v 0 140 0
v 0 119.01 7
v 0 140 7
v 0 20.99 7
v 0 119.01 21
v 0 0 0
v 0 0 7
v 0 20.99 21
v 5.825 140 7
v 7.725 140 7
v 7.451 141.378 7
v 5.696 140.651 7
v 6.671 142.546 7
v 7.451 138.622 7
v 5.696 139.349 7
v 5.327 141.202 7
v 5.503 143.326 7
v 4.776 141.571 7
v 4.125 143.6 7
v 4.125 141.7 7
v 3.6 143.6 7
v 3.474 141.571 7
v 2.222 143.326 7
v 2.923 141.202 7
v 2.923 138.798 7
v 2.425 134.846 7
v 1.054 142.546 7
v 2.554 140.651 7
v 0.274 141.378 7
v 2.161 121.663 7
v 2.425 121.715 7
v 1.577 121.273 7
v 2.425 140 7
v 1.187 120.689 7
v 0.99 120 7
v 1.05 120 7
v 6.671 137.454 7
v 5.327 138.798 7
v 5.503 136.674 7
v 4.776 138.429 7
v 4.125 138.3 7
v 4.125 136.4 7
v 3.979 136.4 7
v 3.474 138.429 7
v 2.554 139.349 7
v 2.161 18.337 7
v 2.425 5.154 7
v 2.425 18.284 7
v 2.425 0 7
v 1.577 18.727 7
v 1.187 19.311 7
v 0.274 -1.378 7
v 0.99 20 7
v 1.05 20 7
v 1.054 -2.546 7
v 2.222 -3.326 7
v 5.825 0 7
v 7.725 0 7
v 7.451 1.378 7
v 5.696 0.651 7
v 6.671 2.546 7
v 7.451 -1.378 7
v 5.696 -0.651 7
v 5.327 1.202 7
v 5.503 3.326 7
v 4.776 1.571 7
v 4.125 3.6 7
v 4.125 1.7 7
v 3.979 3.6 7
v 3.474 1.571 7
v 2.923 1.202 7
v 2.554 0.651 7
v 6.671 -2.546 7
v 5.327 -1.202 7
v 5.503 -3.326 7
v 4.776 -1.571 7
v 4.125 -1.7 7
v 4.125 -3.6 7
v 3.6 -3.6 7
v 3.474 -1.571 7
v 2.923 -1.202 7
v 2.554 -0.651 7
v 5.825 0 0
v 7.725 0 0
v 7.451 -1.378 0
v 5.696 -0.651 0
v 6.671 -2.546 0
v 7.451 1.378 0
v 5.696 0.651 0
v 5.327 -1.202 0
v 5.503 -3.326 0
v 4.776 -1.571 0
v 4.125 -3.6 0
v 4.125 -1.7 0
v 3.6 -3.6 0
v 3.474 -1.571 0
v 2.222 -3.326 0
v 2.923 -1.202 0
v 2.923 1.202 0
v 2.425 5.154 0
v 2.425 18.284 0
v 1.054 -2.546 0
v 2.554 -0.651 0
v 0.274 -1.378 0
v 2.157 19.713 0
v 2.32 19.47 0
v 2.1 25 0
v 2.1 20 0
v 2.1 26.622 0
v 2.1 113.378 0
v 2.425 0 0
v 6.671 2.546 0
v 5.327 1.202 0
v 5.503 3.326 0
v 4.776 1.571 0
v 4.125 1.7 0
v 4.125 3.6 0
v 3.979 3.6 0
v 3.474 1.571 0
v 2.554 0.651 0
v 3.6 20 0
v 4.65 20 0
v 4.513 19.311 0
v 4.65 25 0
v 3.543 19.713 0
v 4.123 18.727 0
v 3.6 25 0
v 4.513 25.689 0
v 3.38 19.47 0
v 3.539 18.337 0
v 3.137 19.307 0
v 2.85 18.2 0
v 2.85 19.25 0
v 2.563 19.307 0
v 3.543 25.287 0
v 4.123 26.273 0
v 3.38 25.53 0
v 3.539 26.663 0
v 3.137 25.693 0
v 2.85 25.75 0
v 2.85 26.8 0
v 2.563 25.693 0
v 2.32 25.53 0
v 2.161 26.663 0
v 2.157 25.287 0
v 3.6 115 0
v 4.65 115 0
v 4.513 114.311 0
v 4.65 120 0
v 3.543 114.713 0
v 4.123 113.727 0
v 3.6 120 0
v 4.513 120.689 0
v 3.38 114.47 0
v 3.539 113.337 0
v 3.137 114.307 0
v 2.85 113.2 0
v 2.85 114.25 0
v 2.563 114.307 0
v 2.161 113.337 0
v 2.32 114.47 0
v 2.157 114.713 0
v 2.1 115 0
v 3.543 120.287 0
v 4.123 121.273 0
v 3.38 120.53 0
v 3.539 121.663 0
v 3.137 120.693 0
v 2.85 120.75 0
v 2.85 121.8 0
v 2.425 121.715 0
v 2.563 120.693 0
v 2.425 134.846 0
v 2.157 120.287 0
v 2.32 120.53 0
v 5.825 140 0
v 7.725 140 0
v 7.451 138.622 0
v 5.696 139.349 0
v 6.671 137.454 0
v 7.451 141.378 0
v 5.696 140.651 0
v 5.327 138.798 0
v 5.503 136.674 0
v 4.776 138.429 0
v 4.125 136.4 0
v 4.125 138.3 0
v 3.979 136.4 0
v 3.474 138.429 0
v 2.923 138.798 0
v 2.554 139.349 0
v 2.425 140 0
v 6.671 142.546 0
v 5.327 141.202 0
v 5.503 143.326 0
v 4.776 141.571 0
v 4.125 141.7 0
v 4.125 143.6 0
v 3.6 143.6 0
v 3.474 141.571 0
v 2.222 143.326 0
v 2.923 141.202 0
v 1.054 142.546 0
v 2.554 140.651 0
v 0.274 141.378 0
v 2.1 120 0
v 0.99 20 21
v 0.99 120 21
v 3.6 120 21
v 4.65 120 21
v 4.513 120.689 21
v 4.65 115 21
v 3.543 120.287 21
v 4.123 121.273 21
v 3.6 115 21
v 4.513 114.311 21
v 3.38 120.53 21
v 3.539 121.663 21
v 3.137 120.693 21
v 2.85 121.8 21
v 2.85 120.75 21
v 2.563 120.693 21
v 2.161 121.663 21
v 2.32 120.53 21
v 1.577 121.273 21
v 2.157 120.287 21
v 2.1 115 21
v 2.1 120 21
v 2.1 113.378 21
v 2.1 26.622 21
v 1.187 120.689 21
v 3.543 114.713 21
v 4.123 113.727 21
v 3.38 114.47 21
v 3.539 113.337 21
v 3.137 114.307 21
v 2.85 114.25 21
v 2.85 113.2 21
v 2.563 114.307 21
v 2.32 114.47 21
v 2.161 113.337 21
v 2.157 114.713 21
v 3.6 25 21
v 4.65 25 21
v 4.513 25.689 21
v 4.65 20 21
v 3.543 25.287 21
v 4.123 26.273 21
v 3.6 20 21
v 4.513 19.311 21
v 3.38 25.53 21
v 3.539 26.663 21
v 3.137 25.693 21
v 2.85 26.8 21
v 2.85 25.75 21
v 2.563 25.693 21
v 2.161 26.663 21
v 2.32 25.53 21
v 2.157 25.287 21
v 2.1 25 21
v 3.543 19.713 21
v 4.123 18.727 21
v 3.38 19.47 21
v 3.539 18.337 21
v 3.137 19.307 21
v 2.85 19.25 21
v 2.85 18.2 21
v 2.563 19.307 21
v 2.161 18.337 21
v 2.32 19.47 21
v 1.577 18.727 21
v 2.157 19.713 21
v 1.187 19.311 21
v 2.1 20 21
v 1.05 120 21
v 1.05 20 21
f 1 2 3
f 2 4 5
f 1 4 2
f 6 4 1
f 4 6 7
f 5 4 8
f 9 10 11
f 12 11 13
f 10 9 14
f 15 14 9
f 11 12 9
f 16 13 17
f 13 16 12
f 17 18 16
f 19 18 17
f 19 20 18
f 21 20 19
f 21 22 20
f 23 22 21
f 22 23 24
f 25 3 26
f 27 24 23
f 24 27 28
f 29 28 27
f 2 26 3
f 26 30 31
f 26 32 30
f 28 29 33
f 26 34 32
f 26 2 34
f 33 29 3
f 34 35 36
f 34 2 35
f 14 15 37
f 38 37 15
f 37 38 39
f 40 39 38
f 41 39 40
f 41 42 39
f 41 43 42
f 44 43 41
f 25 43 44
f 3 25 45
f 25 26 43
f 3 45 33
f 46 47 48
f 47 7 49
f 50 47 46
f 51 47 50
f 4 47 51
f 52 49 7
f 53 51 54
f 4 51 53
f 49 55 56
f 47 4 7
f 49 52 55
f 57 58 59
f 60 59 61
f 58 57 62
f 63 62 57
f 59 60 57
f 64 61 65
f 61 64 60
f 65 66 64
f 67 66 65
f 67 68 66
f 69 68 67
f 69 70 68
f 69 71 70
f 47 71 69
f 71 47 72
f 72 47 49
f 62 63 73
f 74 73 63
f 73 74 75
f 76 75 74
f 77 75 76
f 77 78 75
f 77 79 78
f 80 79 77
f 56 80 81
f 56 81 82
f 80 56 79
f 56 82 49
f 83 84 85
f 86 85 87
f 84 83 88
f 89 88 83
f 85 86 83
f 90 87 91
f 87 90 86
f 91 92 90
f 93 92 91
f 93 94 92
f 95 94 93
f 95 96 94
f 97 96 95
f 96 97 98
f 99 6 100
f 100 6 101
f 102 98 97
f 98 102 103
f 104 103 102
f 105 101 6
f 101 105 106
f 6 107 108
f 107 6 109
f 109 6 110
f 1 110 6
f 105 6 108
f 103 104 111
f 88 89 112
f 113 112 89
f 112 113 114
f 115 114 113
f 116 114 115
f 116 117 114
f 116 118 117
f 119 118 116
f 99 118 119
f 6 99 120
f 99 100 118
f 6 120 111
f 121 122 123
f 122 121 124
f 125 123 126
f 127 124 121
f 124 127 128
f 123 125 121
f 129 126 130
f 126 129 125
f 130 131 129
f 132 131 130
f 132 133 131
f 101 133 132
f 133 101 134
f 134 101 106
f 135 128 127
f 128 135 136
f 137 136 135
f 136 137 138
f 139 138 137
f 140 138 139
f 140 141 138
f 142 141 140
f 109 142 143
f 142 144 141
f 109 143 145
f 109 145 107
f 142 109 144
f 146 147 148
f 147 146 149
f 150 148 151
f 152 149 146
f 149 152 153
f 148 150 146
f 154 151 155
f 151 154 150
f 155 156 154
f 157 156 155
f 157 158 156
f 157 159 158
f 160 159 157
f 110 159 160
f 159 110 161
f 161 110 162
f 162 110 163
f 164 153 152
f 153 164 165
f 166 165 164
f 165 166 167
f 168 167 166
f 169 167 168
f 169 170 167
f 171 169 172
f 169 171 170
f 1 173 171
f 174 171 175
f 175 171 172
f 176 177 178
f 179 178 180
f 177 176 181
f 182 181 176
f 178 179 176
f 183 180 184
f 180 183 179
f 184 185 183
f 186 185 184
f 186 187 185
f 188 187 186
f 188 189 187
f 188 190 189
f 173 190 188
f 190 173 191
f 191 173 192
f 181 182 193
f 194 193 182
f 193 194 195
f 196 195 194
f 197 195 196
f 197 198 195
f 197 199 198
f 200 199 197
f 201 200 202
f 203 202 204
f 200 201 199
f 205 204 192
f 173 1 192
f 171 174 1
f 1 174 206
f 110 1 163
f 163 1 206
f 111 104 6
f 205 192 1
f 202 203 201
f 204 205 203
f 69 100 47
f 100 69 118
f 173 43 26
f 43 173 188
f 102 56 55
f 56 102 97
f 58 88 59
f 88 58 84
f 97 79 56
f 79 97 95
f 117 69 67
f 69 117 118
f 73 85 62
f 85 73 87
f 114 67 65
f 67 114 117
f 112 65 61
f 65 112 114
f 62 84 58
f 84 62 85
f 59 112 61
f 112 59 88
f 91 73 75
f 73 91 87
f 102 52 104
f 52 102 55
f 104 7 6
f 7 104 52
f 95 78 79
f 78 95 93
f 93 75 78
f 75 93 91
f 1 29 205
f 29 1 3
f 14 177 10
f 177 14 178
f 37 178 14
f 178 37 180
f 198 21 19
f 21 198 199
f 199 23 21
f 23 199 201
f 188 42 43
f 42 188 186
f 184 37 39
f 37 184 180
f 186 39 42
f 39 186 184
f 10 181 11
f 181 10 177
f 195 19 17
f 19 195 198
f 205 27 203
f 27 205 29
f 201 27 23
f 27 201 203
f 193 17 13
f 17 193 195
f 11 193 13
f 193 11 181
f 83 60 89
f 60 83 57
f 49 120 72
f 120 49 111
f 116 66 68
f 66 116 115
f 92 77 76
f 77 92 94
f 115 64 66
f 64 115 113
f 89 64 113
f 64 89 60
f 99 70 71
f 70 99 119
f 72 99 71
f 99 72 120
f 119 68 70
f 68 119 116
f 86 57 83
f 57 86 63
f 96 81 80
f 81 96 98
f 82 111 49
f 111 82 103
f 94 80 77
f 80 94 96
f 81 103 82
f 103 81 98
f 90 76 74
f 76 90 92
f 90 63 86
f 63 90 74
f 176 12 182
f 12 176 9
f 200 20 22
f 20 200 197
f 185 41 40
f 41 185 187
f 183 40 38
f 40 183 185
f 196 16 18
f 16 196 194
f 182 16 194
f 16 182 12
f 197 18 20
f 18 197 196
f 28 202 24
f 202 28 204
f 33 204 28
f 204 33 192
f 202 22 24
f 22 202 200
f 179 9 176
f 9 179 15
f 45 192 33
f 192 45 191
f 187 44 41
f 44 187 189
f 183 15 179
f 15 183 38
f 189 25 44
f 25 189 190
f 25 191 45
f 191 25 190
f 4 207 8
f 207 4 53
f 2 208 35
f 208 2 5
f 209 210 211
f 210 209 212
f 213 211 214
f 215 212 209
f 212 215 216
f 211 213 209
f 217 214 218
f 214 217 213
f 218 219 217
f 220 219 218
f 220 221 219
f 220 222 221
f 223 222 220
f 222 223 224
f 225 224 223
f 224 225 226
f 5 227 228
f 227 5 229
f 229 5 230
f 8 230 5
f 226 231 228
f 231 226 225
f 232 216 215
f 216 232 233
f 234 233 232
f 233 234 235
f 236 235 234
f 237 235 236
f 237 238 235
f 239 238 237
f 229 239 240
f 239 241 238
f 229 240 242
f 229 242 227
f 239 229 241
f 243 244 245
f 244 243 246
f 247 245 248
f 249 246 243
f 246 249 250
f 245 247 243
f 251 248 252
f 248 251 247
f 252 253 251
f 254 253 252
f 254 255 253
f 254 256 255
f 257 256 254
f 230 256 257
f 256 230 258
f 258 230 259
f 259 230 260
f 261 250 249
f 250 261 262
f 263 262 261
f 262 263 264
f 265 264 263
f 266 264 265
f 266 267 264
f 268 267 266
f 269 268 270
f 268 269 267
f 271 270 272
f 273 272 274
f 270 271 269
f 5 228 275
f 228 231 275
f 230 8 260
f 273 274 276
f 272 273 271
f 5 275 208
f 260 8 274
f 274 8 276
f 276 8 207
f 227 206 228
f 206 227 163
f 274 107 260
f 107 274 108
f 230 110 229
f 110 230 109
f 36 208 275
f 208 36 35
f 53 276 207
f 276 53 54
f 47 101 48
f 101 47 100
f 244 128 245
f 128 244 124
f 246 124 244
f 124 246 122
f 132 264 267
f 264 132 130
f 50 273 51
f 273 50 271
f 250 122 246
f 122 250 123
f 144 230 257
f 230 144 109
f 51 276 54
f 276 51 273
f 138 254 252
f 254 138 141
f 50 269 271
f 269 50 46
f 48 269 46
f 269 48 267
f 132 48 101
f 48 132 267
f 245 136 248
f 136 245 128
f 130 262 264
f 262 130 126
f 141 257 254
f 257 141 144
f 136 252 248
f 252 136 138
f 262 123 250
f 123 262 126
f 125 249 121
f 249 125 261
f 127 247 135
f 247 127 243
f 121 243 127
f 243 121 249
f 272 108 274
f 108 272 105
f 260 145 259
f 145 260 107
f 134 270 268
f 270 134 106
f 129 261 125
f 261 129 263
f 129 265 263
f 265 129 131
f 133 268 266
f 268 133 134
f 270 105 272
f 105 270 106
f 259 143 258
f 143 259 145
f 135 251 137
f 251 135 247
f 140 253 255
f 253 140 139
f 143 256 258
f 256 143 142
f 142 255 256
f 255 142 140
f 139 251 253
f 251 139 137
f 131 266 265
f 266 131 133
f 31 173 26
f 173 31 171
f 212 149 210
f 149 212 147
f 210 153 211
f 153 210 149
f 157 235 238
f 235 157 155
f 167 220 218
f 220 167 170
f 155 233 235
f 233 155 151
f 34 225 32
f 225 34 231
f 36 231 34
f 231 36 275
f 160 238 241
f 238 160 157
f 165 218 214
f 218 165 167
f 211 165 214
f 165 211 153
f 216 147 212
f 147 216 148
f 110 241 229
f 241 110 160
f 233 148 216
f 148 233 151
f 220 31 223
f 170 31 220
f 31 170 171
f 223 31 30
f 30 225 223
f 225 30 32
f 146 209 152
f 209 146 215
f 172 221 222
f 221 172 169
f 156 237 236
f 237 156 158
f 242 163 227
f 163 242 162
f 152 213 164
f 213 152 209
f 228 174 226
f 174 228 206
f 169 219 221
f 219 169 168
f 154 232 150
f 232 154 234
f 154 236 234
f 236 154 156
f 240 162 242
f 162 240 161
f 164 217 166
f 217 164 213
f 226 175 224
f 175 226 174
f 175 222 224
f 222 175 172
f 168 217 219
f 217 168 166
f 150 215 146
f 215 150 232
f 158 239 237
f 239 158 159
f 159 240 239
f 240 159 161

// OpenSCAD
// file: Cubo.scad
// -----------------
// module cubo
// GPL v2.0
// yvoz.lg@gmail.com
// -----------------


// exemples ----

cubo([10,10,5], [1,2,3,4,5,6,7,8,9,10,11,12], 1.5);

translate([15, 0, 0]){
	difference(){
		cubo([10,20,5], [2,3], 3);
		translate([5,10,-1]) cylinder(r=2, h=7, $fn=12);
	}
}

translate([-15, 0, 0]){
	difference(){
		cube([10,20,15]);
		translate([3,3,3]) cubo([10,20,50], [1,5], 3);
	}
}

// ------------

module cubo(dim, cro, a){

	diago = sqrt(pow(a,2)+pow(a,2));
	difference(){
		cube(dim);
		
		for(i=cro){
			//x
			if(i==1){
				translate([-1, 0, -diago/2])
				rotate([45, 0, 0])
				cube([dim.x+2, a, a]);
			}
			if(i==2){
				translate([-1, 0, dim.z-diago/2])
				rotate([45, 0, 0])
				cube([dim.x+2, a, a]);
			}
			if(i==3){
				translate([-1, dim.y, dim.z-diago/2])
				rotate([45, 0, 0])
				cube([dim.x+2, a, a]);
			}
			if(i==4){
				translate([-1, dim.y, -diago/2])
				rotate([45, 0, 0])
				cube([dim.x+2, a, a]);
			}
			//y
			if(i==5){
				translate([-diago/2, -1, 0])
				rotate([0, 45, 0])
				cube([a, dim.y+2, a]);
			}
			if(i==6){
				translate([dim.x-diago/2, -1, 0])
				rotate([0, 45, 0])
				cube([a, dim.y+2, a]);
			}
			if(i==7){
				translate([dim.x-diago/2, -1, dim.z])
				rotate([0, 45, 0])
				cube([a, dim.y+2, a]);
			}
			if(i==8){
				translate([-diago/2, -1, dim.z])
				rotate([0, 45, 0])
				cube([a, dim.y+2, a]);
			}
			//z
			if(i==9){
				translate([0, -diago/2, -1])
				rotate([0, 0, 45])
				cube([a, a, dim.z+2]);
			}
			if(i==10){
				translate([0, dim.y-diago/2, -1])
				rotate([0, 0, 45])
				cube([a, a, dim.z+2]);
			}
			if(i==11){
				translate([dim.x, dim.y-diago/2, -1])
				rotate([0, 0, 45])
				cube([a, a, dim.z+2]);
			}
			if(i==12){
				translate([dim.x, -diago/2, -1])
				rotate([0, 0, 45])
				cube([a, a, dim.z+2]);
			}
		}
	}
}
// file: Hexa.scad
// include <Hexa.scad>;

m3h = 2.4; 		// hauteur
m3k = 5.5; 		// plat a plat
m3e = 6.3; 		// pointe a pointe
m3r = m3e/2; 	// rayon pointe a pointe
m3p = 0.5; 		// pas

m4h = 3.2;
m4k = 7;
m4e = 8.08;
m4r = m4e/2;
m4p = 0.7;

m5h = 4.7;
m5k = 8;
m5e = 9.23;
m5r = m5e/2;
m5p = 0.8;

m6h = 5.2;
m6k = 10;
m6e = 11.54;
m6r = m6e/2;
m6p = 1.0;

m8h = 6.8;
m8k = 13;
m8e = 15.01;
m8r = m8e/2;
m8p = 1.25;

m10h = 8.4;
m10k = 17;
m10e = 19.62;
m10r = m10e/2;
m10p = 1.5;

m12h = 10.8;
m12k = 19;
m12e = 21.93;
m12r = m12e/2;
m12p = 1.75;

coef = 2/sqrt(3);
echo(coef);

module m3(jk=0, jh=0, jvis=0){
    d = m3k * coef;
    cylinder(r=d/2+jk, h=m3h+jh, $fn=6);
    if(jvis != 0){
        translate([0,0,-30]) cylinder(r=3/2+jvis, h=60, $fn=12);
    }
}
// main file
// CREPP 2019
// GPL V3.0
// www.crepp.org - yvoz.lg@gmail.com

// include <Pqp_BoiteCadre.scad>;
ty = (143+137)/2; // distance entre trous de plaque

include <Hexa.scad>;
use <Cubo.scad>;

ep = 0.3*7; // 2.1
tz = 7;

ix = 1.5;
iy = 5;

my = 20;

$fn = 4*4;

difference(){
    union(){
        hull(){
            translate([ep+1.5,0,0]) cylinder(r=1.5+ep, h=tz);
            translate([ep+1.5+ep/4,0,0]) cylinder(r=1.5+ep, h=tz);
        }
        hull(){
            translate([ep+1.5,ty,0]) cylinder(r=1.5+ep, h=tz);
            translate([ep+1.5+ep/4,ty,0]) cylinder(r=1.5+ep, h=tz);
        }
        // chanfreins
        cubo([ep+ep-0.2,1.5+ep+ep,tz], [11], 3);
        translate([0,ty-(1.5+ep+ep),0]) cubo([ep+ep-0.2,1.5+ep+ep,tz], [12], 3);
    }
    translate([ep+1.5+ep/4,0,0]) cylinder(r=1.7, h=tz+2);
    translate([ep+1.5+ep/4,ty,0]) cylinder(r=1.7, h=tz+2);
}


translate([0,my,0]) cubo([ep,ty-my*2,tz*3], [9,10], 1.4);
translate([0,my,0]) cube([ep,ty-my*2,tz]);


module rizlan(myy) difference(){
    union(){
        cube([ep+ep/4-0.2,my,tz]);
        hull(){
            translate([ep+ix/2,myy,0]) cylinder(r=ix/2+ep*0.5, h=tz*3);
            translate([ep+ix/2,myy+iy,0]) cylinder(r=ix/2+ep*0.5, h=tz*3);
        }
    }
    hull(){
        translate([ep+ix/2,myy,0]) cylinder(r=ix/2, h=tz*3+3);
        translate([ep+ix/2,myy+iy,0]) cylinder(r=ix/2, h=tz*3+3);
    }
}

rizlan(my);
translate([0,ty-my,0]) rizlan(-iy);
